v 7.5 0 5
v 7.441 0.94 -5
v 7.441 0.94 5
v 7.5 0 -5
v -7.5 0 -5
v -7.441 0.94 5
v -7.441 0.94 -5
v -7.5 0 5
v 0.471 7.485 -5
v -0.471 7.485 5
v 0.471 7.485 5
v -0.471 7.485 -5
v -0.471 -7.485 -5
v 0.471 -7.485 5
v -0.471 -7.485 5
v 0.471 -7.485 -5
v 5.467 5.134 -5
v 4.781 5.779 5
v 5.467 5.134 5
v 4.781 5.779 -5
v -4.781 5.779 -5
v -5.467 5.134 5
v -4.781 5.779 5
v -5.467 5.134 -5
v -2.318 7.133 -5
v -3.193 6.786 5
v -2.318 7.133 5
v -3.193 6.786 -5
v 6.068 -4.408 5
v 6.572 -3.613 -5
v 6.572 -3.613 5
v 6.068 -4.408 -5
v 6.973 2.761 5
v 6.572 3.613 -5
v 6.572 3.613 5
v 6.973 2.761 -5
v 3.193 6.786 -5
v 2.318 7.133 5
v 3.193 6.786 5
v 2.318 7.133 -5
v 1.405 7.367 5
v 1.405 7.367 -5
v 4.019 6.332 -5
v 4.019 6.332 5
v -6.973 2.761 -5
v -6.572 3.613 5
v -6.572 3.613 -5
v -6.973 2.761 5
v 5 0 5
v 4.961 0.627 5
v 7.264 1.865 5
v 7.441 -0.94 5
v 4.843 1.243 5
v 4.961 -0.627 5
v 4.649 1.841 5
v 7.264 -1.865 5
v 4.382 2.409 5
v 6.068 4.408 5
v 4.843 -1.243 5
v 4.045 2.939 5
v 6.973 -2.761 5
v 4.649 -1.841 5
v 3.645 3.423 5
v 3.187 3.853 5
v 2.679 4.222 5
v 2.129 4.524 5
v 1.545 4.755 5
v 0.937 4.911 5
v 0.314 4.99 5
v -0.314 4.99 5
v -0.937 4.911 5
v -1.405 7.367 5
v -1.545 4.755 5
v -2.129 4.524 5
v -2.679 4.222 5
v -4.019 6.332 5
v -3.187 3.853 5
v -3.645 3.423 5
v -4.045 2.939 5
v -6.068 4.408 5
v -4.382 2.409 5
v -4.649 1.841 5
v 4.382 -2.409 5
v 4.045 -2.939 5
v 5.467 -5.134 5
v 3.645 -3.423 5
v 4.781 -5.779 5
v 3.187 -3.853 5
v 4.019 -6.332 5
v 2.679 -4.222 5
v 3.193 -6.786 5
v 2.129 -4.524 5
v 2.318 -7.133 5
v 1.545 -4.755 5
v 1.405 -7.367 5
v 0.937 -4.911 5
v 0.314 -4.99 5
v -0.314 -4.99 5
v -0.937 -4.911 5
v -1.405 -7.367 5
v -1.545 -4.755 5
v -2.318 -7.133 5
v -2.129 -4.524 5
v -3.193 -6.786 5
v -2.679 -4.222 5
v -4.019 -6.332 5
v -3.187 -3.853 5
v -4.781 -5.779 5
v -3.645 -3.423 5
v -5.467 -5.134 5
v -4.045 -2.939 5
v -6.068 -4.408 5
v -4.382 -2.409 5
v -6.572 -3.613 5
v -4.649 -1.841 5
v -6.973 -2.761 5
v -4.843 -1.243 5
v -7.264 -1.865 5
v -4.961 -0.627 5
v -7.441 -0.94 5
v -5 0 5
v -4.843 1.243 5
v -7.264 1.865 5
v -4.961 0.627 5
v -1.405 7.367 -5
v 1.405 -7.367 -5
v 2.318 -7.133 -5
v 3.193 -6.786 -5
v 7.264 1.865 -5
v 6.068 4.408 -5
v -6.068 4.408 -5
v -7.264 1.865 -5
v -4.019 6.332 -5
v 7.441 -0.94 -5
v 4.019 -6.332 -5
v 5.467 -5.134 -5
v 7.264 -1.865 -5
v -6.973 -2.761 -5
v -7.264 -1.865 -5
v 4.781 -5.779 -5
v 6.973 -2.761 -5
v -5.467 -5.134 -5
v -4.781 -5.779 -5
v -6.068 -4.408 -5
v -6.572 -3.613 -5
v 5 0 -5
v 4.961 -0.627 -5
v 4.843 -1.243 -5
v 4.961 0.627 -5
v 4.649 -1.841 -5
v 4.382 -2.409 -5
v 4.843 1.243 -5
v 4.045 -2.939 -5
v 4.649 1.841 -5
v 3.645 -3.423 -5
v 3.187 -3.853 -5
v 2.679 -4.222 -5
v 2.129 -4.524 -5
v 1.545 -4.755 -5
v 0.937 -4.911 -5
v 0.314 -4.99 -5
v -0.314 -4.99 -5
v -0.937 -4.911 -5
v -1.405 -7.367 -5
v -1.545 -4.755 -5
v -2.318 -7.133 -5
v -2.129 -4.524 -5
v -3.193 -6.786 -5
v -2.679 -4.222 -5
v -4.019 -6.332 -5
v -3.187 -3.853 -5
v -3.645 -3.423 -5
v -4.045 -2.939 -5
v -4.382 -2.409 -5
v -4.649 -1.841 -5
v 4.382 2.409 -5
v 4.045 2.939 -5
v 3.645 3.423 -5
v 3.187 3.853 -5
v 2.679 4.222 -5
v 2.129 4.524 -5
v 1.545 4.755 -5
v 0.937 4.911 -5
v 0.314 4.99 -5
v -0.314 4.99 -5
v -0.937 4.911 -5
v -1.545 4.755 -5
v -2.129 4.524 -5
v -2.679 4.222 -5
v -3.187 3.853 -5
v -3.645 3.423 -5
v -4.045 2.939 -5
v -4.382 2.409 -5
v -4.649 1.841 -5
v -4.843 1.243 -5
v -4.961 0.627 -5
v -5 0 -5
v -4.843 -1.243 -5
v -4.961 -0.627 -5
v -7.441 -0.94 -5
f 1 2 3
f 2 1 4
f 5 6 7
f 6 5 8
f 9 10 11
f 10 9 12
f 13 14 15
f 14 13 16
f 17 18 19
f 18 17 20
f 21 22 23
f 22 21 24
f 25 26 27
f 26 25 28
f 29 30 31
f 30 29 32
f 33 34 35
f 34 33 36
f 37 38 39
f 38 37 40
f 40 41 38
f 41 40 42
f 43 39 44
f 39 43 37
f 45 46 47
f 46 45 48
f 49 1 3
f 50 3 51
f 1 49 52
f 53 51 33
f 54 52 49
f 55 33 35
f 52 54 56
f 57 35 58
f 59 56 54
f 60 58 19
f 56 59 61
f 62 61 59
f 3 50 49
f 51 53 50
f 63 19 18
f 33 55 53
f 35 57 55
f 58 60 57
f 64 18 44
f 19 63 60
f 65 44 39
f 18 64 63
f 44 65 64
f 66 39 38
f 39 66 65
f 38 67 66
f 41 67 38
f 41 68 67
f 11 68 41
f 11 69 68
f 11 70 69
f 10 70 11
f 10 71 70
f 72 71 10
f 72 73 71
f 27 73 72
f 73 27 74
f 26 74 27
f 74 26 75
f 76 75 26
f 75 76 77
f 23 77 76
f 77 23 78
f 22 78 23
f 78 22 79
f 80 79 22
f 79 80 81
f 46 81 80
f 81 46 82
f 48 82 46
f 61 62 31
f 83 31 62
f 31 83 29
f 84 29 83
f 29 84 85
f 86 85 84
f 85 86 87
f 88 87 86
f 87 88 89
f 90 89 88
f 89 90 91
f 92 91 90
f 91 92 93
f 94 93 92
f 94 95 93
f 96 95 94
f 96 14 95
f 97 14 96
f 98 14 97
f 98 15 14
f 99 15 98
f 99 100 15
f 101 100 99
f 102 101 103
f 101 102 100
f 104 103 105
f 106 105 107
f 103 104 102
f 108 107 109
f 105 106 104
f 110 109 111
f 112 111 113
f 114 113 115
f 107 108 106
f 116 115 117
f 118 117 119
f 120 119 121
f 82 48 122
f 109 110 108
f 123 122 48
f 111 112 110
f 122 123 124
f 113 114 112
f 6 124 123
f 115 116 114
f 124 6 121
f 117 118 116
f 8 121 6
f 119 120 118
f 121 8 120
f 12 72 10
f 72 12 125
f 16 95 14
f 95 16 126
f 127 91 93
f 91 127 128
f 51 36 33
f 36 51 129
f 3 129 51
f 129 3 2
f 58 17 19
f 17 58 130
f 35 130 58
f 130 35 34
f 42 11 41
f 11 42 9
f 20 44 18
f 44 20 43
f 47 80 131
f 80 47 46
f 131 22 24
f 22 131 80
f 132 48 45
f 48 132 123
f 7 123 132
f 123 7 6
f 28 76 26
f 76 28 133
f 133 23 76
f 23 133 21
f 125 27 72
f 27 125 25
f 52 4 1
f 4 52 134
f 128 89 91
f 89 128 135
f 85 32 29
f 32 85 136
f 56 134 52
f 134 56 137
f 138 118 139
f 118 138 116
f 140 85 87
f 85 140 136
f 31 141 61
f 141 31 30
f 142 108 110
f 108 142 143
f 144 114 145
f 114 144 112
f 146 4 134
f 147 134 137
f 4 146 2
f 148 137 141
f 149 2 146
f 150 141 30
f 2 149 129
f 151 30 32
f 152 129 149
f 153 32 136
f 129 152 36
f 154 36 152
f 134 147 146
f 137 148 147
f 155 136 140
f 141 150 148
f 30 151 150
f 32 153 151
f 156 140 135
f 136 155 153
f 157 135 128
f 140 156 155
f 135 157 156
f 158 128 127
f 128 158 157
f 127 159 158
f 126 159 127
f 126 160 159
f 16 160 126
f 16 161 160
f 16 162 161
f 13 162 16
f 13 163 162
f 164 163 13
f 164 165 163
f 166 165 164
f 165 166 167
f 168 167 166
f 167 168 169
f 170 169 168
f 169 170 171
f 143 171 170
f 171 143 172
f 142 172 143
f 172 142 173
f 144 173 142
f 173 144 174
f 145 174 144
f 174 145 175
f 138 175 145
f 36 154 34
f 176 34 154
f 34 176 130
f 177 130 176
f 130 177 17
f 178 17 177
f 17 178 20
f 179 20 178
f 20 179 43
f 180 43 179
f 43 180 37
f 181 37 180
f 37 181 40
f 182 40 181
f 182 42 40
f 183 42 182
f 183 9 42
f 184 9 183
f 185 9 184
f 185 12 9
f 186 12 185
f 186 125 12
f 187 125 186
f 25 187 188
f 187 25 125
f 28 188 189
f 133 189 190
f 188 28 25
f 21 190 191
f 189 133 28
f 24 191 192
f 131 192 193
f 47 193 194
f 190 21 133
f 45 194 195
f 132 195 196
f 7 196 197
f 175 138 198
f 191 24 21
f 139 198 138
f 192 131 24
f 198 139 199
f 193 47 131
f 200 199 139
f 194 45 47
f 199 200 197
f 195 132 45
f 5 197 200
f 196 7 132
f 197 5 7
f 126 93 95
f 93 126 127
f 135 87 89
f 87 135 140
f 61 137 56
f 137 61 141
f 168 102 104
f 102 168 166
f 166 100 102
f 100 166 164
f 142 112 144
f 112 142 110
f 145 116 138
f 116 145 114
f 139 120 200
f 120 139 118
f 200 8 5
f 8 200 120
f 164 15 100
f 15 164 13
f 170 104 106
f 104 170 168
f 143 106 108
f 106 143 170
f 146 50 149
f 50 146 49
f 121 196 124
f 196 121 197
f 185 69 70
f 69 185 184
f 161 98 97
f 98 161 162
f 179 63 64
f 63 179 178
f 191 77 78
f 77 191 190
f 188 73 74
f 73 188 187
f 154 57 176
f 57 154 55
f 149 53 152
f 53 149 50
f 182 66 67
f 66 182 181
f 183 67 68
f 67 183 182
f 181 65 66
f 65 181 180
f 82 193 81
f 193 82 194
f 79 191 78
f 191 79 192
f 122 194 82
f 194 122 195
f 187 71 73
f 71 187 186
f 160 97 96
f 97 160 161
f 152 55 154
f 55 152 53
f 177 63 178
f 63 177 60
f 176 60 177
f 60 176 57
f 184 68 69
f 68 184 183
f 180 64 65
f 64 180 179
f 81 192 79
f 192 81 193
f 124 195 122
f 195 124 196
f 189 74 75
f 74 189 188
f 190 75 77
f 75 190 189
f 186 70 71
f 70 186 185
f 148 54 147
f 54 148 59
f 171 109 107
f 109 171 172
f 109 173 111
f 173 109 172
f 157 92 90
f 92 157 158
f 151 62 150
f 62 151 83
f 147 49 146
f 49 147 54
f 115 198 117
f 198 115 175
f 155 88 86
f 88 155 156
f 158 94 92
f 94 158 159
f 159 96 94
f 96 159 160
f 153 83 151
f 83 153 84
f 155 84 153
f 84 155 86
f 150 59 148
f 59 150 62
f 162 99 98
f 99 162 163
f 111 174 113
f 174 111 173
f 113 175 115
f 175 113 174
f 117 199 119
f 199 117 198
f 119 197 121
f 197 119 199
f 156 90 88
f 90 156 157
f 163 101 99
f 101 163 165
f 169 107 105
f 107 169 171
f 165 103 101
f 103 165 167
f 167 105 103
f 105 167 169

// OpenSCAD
$fn = 50;


difference() {
	union() {
		translate(v = [0, 0, -5.0000000000]) {
			cylinder(h = 10, r = 7.5000000000);
		}
	}
	union() {
		translate(v = [0, 0, -100.0000000000]) {
			cylinder(h = 200, r = 5);
		}
	}
}
